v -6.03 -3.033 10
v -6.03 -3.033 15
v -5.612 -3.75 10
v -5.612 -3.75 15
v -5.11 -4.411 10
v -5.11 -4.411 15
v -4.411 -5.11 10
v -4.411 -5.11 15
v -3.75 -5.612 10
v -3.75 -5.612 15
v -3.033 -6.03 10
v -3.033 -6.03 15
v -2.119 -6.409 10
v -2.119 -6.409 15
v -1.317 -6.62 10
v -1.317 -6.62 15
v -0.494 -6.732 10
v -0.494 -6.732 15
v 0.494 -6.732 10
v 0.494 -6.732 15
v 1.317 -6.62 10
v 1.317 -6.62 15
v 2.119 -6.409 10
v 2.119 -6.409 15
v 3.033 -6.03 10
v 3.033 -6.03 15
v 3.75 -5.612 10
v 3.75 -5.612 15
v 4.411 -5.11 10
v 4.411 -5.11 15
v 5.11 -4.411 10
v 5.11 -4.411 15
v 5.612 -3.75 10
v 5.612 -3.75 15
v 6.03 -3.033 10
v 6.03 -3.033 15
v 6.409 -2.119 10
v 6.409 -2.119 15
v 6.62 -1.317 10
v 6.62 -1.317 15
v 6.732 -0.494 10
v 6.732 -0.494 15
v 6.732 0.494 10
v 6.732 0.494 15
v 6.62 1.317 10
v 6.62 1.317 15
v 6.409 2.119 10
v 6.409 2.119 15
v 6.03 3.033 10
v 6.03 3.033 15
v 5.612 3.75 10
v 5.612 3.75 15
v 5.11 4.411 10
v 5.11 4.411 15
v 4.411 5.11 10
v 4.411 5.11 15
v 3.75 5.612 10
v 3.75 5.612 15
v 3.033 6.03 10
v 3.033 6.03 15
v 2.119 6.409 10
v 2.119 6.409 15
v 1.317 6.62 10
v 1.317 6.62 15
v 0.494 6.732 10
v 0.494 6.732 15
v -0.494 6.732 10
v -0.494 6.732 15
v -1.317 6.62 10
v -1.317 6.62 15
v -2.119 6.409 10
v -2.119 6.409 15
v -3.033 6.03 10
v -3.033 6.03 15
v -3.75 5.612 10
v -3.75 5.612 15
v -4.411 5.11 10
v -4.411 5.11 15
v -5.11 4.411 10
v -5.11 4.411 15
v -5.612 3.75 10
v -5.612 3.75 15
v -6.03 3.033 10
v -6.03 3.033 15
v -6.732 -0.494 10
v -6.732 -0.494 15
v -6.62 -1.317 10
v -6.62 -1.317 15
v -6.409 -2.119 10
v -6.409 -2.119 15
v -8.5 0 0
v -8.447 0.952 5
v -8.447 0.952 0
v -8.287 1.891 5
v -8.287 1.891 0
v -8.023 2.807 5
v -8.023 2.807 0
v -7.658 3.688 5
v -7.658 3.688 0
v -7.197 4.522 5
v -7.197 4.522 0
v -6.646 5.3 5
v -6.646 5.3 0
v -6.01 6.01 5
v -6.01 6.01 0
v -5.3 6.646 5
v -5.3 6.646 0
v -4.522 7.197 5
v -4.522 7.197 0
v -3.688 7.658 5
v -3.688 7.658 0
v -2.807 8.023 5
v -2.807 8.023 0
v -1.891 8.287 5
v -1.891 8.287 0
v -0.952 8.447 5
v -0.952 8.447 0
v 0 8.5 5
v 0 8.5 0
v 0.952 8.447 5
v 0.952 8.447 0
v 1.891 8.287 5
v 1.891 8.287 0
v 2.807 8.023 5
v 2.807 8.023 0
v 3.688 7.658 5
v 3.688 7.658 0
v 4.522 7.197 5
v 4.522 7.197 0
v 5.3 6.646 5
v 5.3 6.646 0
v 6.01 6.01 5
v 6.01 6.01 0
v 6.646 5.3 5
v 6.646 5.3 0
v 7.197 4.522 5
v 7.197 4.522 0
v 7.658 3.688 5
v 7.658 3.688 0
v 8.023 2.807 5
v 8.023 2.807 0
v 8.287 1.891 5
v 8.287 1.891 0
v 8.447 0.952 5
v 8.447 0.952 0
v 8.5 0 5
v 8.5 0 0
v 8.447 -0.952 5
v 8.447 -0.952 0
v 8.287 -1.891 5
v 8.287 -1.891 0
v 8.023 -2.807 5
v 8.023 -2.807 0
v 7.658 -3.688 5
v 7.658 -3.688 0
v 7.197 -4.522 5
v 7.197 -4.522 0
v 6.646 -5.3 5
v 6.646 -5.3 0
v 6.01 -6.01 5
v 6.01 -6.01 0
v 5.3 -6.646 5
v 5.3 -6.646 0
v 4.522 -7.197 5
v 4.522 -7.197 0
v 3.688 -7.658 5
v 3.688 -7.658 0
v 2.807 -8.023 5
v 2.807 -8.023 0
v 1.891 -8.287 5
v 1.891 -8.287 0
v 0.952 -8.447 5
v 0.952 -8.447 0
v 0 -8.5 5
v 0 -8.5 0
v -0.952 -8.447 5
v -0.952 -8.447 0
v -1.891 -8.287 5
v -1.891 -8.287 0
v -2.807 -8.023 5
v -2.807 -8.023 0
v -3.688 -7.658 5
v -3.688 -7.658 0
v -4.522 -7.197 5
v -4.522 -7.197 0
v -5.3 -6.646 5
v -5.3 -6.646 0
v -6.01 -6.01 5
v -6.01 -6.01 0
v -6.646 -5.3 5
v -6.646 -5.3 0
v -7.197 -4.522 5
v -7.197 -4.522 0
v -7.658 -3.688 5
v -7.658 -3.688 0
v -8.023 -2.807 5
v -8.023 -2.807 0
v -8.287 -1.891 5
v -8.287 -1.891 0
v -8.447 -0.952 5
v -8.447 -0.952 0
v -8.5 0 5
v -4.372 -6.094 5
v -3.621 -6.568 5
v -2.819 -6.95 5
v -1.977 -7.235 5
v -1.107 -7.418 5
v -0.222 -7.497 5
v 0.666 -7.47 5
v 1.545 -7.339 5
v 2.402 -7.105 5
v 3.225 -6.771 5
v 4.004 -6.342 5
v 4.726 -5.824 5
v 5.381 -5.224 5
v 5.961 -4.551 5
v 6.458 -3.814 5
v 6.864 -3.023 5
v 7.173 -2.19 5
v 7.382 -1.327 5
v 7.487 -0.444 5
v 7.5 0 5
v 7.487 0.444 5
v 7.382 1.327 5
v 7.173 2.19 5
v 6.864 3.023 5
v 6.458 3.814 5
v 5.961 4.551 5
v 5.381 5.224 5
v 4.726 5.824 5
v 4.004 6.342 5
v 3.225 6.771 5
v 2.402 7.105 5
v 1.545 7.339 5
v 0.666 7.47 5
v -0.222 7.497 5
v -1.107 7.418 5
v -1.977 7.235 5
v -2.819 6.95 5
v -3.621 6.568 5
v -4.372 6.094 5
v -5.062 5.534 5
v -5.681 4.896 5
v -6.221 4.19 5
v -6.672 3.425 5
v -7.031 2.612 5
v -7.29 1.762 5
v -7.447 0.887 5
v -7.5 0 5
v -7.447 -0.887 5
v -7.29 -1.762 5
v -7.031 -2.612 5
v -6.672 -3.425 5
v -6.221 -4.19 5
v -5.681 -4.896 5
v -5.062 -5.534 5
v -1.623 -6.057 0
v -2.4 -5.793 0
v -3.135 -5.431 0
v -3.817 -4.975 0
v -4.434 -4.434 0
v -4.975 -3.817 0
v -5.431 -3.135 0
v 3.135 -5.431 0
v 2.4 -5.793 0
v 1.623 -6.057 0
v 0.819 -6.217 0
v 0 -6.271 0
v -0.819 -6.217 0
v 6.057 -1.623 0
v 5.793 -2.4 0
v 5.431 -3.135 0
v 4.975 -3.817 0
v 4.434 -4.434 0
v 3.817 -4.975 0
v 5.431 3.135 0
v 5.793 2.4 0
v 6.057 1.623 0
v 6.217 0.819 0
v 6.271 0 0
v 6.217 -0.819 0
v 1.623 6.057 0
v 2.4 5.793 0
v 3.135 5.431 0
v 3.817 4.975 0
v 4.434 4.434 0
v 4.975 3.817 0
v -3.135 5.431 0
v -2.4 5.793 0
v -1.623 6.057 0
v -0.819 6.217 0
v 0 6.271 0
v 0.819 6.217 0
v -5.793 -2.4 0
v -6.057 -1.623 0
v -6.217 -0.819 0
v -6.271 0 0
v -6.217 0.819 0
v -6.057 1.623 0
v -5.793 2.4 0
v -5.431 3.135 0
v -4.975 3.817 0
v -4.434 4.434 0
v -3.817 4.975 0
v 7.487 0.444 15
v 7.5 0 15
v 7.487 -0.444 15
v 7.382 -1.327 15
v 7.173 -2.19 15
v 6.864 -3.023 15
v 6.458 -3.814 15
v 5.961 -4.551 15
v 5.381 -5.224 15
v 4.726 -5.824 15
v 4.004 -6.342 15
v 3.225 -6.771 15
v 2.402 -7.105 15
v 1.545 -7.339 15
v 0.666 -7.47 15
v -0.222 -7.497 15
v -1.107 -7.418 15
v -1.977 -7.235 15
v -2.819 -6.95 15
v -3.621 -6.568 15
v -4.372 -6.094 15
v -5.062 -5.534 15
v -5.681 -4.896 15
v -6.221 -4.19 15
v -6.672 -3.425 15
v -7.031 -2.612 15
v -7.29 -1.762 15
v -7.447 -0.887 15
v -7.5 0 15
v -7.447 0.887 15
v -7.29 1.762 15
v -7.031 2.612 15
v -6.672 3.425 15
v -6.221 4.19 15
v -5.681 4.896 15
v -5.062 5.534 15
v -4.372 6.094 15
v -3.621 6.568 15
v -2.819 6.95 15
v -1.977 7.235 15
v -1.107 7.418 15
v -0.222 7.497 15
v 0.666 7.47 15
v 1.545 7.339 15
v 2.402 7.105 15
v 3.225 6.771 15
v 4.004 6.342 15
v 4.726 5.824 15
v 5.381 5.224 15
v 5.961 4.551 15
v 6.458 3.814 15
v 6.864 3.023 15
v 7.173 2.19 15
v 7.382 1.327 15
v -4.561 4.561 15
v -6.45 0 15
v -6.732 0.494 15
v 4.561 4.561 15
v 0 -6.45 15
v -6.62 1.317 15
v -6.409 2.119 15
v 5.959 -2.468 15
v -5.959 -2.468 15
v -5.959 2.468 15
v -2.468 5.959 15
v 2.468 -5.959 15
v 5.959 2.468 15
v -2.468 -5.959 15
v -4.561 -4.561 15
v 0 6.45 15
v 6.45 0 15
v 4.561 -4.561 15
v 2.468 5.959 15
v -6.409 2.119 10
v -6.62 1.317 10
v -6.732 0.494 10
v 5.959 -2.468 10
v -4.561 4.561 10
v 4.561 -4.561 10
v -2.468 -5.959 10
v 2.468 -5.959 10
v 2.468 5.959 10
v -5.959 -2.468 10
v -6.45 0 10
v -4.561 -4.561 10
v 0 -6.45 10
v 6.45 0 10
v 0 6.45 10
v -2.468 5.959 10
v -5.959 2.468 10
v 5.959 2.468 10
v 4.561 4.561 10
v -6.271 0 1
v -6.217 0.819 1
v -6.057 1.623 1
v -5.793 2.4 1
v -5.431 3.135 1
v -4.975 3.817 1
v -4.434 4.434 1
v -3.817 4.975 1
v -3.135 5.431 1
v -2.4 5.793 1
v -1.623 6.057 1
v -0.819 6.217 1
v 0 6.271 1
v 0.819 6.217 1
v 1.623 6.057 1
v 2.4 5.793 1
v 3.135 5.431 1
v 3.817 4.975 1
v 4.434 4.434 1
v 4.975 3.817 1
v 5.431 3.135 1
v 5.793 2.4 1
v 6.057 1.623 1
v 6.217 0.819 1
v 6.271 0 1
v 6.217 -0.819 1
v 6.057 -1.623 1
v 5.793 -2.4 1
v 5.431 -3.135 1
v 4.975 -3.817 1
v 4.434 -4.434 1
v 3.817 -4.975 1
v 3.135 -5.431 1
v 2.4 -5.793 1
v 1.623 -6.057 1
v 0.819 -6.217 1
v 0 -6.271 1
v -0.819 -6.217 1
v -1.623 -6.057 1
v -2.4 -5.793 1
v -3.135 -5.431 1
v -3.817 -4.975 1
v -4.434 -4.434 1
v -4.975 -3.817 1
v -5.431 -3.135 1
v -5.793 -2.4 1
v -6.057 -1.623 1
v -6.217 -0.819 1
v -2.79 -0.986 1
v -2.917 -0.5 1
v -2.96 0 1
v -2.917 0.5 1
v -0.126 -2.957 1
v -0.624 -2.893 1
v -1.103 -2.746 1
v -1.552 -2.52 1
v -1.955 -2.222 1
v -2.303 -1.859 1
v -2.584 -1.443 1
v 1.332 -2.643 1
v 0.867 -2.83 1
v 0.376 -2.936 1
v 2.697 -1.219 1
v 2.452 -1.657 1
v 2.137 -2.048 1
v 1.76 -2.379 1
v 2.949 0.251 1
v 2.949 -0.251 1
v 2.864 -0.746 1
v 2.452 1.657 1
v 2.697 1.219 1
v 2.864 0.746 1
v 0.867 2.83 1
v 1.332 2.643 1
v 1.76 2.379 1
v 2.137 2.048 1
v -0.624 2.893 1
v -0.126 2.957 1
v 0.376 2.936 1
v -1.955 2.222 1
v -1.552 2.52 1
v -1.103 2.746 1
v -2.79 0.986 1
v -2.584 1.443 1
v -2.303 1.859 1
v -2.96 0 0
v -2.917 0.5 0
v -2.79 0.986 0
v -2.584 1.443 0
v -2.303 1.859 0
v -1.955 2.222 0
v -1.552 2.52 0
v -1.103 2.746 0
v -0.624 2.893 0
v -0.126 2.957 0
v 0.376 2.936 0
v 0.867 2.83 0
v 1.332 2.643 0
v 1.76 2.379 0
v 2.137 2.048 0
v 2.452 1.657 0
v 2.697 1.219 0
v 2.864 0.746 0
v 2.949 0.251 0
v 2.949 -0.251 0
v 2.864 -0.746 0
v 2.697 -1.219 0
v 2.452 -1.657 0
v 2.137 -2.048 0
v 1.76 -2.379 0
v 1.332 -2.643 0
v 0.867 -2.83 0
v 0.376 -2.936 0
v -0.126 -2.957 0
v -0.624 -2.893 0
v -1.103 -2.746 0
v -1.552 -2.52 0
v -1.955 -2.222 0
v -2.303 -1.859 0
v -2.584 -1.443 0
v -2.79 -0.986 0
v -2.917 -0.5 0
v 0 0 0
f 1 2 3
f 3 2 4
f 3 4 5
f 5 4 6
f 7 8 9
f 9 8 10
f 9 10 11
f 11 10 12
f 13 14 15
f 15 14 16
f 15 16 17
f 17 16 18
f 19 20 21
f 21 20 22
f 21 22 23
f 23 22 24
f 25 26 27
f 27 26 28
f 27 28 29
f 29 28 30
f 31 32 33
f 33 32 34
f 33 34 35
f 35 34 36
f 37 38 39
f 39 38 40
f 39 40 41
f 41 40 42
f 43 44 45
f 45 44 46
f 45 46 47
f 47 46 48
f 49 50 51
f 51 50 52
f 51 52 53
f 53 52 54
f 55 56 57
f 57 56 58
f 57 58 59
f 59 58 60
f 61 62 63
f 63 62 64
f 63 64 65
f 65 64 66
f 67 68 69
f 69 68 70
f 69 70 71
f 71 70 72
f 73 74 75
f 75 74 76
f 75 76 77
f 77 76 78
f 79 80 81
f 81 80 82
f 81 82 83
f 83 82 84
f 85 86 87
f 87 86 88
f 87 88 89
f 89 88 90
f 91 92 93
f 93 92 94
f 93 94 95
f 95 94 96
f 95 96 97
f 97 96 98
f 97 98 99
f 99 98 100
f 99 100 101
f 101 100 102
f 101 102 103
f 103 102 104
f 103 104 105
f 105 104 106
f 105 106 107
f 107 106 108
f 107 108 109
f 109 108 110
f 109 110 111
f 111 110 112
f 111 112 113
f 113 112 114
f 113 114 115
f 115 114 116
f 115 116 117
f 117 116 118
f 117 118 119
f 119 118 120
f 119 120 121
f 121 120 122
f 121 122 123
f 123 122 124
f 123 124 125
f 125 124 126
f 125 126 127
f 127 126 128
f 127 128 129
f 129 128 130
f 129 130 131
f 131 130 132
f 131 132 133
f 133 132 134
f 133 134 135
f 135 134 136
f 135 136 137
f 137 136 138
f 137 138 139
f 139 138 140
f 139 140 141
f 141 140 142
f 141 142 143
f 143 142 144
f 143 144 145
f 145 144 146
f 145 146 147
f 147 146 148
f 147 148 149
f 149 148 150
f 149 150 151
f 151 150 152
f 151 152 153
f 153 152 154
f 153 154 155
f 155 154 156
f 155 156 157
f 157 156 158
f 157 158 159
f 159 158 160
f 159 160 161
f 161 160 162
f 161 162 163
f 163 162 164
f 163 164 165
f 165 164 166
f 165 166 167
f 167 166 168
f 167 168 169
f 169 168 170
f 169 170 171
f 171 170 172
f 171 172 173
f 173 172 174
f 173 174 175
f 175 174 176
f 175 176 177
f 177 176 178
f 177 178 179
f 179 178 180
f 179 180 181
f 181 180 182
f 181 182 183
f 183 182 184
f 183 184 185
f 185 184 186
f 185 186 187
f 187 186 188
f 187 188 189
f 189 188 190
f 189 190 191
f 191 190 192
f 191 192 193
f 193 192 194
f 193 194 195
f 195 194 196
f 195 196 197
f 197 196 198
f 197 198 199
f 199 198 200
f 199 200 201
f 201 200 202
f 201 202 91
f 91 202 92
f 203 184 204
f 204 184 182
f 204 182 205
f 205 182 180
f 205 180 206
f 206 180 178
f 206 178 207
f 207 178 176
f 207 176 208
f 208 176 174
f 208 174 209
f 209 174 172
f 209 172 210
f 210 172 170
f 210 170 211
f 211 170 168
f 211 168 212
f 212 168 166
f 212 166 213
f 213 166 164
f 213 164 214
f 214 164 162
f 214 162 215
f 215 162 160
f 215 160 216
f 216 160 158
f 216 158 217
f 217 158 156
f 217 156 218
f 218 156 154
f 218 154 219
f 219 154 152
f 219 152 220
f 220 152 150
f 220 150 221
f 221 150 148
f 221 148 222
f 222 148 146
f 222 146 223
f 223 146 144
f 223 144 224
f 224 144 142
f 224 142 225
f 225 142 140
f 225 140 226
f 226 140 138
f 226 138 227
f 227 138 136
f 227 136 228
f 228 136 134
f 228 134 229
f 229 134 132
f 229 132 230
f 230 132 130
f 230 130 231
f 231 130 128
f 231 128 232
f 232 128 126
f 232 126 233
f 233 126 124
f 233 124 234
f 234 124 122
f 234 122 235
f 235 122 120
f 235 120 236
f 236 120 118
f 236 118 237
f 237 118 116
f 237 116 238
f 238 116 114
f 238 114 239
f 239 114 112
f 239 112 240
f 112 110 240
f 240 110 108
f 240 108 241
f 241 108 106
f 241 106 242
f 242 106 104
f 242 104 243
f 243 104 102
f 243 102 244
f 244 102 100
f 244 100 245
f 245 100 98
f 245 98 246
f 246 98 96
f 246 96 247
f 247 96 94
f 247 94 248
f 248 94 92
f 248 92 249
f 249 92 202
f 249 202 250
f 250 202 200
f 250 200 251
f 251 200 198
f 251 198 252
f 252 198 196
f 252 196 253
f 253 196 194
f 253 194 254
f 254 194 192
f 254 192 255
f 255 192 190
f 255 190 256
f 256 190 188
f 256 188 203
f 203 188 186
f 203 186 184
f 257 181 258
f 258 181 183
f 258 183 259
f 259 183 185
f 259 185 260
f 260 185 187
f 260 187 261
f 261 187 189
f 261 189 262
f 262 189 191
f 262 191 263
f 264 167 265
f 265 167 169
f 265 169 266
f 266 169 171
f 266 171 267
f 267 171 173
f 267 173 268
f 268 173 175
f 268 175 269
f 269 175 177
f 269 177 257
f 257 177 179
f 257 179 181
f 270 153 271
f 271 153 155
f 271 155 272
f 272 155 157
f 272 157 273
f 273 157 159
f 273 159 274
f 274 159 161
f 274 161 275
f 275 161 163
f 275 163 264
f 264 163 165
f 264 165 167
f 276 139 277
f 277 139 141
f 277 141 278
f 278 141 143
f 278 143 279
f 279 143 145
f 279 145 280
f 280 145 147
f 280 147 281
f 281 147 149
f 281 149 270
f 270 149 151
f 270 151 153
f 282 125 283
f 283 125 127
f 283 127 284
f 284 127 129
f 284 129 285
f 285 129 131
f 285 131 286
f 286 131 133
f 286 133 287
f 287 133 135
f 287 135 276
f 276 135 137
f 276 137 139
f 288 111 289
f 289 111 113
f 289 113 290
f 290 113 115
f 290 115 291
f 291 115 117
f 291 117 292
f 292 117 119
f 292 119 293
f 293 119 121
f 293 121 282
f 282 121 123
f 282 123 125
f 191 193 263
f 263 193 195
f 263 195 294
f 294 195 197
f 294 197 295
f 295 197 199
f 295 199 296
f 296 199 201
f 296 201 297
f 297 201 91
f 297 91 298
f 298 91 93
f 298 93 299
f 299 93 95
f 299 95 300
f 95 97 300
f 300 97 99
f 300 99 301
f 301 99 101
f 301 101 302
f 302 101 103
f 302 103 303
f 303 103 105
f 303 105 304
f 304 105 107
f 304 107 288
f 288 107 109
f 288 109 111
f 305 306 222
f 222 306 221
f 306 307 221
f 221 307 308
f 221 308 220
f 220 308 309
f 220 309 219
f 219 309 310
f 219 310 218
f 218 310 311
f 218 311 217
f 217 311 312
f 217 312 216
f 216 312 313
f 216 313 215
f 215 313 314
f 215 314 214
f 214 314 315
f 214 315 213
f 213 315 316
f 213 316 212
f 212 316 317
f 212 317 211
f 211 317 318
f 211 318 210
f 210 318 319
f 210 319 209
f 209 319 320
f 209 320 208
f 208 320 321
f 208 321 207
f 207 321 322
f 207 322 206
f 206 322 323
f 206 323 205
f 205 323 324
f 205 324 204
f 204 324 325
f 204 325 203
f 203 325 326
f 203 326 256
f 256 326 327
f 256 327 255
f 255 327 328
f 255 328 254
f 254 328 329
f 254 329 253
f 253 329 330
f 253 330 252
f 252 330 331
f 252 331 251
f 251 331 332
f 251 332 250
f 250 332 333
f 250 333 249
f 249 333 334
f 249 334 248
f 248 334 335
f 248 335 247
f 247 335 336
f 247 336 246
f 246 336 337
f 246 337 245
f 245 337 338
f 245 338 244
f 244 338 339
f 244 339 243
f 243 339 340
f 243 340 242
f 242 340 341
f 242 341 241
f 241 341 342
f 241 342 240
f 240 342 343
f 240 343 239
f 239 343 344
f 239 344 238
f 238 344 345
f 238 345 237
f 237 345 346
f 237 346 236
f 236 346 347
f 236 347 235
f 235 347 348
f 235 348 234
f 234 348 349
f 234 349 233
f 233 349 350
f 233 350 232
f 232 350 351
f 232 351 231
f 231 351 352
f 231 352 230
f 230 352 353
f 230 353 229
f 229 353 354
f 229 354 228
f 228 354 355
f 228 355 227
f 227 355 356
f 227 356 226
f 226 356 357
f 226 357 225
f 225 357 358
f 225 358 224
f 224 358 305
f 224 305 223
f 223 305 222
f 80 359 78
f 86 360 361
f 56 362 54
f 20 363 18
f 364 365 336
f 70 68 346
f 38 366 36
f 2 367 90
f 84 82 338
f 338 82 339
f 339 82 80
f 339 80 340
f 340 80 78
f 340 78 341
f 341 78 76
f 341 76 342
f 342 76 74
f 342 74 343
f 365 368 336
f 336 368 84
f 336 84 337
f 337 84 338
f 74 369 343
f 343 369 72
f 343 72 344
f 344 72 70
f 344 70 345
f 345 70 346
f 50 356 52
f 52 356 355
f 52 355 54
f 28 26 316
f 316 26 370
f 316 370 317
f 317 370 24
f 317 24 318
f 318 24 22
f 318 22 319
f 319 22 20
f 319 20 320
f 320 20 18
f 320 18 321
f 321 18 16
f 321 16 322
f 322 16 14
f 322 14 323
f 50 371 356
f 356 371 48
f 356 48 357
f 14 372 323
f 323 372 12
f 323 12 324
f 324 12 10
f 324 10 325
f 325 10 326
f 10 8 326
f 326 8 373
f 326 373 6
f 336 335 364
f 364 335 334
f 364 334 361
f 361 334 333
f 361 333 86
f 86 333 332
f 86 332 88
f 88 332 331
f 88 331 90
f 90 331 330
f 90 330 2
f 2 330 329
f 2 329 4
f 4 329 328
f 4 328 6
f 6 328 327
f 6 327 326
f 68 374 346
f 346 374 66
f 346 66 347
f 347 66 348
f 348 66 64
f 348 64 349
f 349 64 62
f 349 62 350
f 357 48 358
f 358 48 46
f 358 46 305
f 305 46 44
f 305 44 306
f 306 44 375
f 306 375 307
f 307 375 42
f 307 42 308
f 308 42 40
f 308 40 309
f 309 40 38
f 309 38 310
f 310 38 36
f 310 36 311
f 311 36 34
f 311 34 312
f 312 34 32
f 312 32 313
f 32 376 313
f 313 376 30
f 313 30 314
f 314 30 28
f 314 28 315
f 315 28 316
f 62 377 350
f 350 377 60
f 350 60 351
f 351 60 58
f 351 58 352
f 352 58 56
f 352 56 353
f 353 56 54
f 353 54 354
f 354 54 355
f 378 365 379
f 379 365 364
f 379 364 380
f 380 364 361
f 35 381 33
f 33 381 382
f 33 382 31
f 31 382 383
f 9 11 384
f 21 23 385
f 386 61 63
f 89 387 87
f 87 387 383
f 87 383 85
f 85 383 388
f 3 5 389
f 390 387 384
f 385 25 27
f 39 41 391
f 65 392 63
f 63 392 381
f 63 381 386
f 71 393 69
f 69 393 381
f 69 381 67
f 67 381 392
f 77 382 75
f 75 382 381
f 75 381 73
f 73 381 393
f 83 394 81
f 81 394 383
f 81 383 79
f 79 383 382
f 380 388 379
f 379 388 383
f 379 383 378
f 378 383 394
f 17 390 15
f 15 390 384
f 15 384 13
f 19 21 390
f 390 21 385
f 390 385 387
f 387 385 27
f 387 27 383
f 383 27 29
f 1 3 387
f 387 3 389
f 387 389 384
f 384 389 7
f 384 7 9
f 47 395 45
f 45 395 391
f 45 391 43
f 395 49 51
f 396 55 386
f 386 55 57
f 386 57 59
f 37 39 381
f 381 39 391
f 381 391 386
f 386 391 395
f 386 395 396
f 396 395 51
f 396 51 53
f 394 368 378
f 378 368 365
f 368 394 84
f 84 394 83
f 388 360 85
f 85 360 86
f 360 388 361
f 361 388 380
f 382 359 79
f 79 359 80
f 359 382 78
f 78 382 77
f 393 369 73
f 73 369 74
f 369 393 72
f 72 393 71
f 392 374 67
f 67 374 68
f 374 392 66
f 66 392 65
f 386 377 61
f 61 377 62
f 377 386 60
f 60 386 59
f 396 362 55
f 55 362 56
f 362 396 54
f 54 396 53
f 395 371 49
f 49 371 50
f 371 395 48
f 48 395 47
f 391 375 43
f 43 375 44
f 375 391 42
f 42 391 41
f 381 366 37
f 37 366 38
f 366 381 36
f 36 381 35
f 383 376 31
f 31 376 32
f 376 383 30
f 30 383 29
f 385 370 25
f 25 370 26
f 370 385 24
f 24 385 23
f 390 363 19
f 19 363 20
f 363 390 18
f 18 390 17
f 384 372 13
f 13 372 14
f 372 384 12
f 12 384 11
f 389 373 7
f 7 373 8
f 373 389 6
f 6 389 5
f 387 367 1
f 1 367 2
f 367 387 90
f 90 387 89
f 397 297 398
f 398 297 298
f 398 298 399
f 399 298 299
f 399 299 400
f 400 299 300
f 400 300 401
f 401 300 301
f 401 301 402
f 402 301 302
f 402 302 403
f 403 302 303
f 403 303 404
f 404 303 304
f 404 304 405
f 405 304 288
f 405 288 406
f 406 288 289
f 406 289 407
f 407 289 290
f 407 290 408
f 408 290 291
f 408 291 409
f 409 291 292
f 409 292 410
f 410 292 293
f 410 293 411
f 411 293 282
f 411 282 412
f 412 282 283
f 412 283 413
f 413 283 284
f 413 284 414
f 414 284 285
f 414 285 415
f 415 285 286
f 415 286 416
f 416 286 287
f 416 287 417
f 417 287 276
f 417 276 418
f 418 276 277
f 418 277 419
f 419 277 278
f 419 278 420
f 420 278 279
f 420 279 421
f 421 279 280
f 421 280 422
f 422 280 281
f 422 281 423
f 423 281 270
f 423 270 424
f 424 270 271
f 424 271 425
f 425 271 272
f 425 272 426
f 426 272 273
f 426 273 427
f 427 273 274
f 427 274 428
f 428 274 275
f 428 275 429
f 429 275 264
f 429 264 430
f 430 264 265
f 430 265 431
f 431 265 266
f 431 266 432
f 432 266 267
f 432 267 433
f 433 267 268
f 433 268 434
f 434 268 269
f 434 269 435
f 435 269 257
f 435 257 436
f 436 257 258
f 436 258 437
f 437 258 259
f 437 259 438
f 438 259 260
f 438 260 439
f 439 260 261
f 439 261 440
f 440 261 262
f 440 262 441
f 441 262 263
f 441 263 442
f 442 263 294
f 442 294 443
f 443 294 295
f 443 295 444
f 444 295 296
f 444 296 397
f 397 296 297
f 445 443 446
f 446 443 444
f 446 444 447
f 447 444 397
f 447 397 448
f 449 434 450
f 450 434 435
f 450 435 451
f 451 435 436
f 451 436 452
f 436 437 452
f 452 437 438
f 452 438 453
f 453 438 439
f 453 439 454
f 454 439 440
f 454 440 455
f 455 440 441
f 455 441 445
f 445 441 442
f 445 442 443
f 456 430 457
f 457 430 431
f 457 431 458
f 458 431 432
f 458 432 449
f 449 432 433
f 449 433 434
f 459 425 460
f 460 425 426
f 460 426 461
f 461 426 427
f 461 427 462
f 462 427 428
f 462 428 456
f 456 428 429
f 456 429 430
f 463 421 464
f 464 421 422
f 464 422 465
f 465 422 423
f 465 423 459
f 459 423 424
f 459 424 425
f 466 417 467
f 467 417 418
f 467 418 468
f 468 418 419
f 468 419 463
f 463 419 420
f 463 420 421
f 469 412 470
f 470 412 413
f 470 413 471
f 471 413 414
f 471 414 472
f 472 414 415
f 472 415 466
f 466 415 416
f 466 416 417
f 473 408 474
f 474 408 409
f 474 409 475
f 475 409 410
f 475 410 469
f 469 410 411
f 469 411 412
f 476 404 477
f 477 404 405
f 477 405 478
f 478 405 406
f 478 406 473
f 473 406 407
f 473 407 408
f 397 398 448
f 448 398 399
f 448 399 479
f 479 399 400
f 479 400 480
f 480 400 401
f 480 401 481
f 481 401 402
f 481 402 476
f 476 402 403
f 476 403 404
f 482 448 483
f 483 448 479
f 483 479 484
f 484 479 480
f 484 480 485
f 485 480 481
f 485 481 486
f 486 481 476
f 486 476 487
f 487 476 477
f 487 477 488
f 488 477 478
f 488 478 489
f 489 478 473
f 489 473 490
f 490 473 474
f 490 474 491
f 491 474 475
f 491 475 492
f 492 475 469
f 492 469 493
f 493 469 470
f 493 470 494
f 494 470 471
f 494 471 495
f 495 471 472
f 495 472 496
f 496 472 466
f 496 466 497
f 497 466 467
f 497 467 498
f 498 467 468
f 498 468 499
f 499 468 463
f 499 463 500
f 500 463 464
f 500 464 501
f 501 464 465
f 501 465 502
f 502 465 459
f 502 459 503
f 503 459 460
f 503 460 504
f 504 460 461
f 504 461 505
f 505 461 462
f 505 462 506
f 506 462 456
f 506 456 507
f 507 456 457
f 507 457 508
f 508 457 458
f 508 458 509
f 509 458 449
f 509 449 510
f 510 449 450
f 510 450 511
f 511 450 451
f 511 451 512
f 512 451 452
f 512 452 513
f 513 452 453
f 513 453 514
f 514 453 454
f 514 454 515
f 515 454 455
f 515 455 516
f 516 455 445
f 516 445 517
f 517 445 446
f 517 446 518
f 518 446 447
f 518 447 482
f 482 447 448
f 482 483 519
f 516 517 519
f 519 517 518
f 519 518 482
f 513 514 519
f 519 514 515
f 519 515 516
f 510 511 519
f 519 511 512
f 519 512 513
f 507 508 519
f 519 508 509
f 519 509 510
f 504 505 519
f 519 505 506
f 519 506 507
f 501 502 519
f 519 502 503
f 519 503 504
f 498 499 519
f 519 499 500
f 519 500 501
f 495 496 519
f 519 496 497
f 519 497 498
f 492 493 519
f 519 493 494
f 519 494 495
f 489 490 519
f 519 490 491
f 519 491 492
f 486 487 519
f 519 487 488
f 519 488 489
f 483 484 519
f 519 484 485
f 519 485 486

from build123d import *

# Parameters (mm, degrees)
SKETCH1_R           = 8.5
BOSS_EXTRUDE1_DEPTH = 5
SKETCH2_R           = 7.5
BOSS_EXTRUDE2_DEPTH = 10
SKETCH3_R           = 6.75
CUT_EXTRUDE1_DEPTH  = 5
BOSS_EXTRUDE5_DEPTH = 5
SKETCH5_R           = 6.270829758
SKETCH5_R_2         = 2.95954522
CUT_EXTRUDE2_DEPTH  = 1


with BuildPart() as part:
    # Sketch1 → Boss-Extrude1 (new body)
    with BuildSketch(Plane.XY):
        Circle(SKETCH1_R)
    extrude(amount=BOSS_EXTRUDE1_DEPTH)

    # Sketch2 → Boss-Extrude2 (add)
    with BuildSketch(Plane.XY.offset(5)):
        Circle(SKETCH2_R)
    extrude(amount=BOSS_EXTRUDE2_DEPTH)

    # Sketch3 → Cut-Extrude1 (cut)
    with BuildSketch(Plane.XY.offset(15)):
        Circle(SKETCH3_R)
    extrude(amount=-CUT_EXTRUDE1_DEPTH, mode=Mode.SUBTRACT)

    # Sketch4 → Boss-Extrude5 (add)
    with BuildSketch(Plane.XY.offset(15)):
        Polygon((-6.45, 0), (-6.877641054, 0.75), (-6.877641054, -0.75), align=None)
        Polygon((-6.067099227, 3.324868934), (-6.641124376, 1.939049636), (-5.959022985, 2.468308139), align=None)
        Polygon((-4.332896542, 5.393556714), (-5.393556714, 4.332896542), (-4.560838739, 4.560838739), align=None)
        Polygon((-1.939049636, 6.641124376), (-3.324868934, 6.067099227), (-2.468308139, 5.959022985), align=None)
        Polygon((0.75, 6.877641054), (-0.75, 6.877641054), (0, 6.45), align=None)
        Polygon((3.324868934, 6.067099227), (1.939049636, 6.641124376), (2.468308139, 5.959022985), align=None)
        Polygon((5.393556714, 4.332896542), (4.332896542, 5.393556714), (4.560838739, 4.560838739), align=None)
        Polygon((6.641124376, 1.939049636), (6.067099227, 3.324868934), (5.959022985, 2.468308139), align=None)
        Polygon((6.877641054, -0.75), (6.877641054, 0.75), (6.45, 0), align=None)
        Polygon((6.067099227, -3.324868934), (6.641124376, -1.939049636), (5.959022985, -2.468308139), align=None)
        Polygon((4.332896542, -5.393556714), (5.393556714, -4.332896542), (4.560838739, -4.560838739), align=None)
        Polygon((1.939049636, -6.641124376), (3.324868934, -6.067099227), (2.468308139, -5.959022985), align=None)
        Polygon((-0.75, -6.877641054), (0.75, -6.877641054), (0, -6.45), align=None)
        Polygon((-3.324868934, -6.067099227), (-1.939049636, -6.641124376), (-2.468308139, -5.959022985), align=None)
        Polygon((-5.393556714, -4.332896542), (-4.332896542, -5.393556714), (-4.560838739, -4.560838739), align=None)
        Polygon((-6.641124376, -1.939049636), (-6.067099227, -3.324868934), (-5.959022985, -2.468308139), align=None)
    extrude(amount=-BOSS_EXTRUDE5_DEPTH)

    # Sketch5 → Cut-Extrude2 (cut)
    with BuildSketch(Plane(origin=(0, 0, 0), x_dir=(-1, 0, 0), z_dir=(0, 0, -1))):
        Circle(SKETCH5_R)
        Circle(SKETCH5_R_2, mode=Mode.SUBTRACT)
    extrude(amount=-CUT_EXTRUDE2_DEPTH, mode=Mode.SUBTRACT)


solid = part.part
